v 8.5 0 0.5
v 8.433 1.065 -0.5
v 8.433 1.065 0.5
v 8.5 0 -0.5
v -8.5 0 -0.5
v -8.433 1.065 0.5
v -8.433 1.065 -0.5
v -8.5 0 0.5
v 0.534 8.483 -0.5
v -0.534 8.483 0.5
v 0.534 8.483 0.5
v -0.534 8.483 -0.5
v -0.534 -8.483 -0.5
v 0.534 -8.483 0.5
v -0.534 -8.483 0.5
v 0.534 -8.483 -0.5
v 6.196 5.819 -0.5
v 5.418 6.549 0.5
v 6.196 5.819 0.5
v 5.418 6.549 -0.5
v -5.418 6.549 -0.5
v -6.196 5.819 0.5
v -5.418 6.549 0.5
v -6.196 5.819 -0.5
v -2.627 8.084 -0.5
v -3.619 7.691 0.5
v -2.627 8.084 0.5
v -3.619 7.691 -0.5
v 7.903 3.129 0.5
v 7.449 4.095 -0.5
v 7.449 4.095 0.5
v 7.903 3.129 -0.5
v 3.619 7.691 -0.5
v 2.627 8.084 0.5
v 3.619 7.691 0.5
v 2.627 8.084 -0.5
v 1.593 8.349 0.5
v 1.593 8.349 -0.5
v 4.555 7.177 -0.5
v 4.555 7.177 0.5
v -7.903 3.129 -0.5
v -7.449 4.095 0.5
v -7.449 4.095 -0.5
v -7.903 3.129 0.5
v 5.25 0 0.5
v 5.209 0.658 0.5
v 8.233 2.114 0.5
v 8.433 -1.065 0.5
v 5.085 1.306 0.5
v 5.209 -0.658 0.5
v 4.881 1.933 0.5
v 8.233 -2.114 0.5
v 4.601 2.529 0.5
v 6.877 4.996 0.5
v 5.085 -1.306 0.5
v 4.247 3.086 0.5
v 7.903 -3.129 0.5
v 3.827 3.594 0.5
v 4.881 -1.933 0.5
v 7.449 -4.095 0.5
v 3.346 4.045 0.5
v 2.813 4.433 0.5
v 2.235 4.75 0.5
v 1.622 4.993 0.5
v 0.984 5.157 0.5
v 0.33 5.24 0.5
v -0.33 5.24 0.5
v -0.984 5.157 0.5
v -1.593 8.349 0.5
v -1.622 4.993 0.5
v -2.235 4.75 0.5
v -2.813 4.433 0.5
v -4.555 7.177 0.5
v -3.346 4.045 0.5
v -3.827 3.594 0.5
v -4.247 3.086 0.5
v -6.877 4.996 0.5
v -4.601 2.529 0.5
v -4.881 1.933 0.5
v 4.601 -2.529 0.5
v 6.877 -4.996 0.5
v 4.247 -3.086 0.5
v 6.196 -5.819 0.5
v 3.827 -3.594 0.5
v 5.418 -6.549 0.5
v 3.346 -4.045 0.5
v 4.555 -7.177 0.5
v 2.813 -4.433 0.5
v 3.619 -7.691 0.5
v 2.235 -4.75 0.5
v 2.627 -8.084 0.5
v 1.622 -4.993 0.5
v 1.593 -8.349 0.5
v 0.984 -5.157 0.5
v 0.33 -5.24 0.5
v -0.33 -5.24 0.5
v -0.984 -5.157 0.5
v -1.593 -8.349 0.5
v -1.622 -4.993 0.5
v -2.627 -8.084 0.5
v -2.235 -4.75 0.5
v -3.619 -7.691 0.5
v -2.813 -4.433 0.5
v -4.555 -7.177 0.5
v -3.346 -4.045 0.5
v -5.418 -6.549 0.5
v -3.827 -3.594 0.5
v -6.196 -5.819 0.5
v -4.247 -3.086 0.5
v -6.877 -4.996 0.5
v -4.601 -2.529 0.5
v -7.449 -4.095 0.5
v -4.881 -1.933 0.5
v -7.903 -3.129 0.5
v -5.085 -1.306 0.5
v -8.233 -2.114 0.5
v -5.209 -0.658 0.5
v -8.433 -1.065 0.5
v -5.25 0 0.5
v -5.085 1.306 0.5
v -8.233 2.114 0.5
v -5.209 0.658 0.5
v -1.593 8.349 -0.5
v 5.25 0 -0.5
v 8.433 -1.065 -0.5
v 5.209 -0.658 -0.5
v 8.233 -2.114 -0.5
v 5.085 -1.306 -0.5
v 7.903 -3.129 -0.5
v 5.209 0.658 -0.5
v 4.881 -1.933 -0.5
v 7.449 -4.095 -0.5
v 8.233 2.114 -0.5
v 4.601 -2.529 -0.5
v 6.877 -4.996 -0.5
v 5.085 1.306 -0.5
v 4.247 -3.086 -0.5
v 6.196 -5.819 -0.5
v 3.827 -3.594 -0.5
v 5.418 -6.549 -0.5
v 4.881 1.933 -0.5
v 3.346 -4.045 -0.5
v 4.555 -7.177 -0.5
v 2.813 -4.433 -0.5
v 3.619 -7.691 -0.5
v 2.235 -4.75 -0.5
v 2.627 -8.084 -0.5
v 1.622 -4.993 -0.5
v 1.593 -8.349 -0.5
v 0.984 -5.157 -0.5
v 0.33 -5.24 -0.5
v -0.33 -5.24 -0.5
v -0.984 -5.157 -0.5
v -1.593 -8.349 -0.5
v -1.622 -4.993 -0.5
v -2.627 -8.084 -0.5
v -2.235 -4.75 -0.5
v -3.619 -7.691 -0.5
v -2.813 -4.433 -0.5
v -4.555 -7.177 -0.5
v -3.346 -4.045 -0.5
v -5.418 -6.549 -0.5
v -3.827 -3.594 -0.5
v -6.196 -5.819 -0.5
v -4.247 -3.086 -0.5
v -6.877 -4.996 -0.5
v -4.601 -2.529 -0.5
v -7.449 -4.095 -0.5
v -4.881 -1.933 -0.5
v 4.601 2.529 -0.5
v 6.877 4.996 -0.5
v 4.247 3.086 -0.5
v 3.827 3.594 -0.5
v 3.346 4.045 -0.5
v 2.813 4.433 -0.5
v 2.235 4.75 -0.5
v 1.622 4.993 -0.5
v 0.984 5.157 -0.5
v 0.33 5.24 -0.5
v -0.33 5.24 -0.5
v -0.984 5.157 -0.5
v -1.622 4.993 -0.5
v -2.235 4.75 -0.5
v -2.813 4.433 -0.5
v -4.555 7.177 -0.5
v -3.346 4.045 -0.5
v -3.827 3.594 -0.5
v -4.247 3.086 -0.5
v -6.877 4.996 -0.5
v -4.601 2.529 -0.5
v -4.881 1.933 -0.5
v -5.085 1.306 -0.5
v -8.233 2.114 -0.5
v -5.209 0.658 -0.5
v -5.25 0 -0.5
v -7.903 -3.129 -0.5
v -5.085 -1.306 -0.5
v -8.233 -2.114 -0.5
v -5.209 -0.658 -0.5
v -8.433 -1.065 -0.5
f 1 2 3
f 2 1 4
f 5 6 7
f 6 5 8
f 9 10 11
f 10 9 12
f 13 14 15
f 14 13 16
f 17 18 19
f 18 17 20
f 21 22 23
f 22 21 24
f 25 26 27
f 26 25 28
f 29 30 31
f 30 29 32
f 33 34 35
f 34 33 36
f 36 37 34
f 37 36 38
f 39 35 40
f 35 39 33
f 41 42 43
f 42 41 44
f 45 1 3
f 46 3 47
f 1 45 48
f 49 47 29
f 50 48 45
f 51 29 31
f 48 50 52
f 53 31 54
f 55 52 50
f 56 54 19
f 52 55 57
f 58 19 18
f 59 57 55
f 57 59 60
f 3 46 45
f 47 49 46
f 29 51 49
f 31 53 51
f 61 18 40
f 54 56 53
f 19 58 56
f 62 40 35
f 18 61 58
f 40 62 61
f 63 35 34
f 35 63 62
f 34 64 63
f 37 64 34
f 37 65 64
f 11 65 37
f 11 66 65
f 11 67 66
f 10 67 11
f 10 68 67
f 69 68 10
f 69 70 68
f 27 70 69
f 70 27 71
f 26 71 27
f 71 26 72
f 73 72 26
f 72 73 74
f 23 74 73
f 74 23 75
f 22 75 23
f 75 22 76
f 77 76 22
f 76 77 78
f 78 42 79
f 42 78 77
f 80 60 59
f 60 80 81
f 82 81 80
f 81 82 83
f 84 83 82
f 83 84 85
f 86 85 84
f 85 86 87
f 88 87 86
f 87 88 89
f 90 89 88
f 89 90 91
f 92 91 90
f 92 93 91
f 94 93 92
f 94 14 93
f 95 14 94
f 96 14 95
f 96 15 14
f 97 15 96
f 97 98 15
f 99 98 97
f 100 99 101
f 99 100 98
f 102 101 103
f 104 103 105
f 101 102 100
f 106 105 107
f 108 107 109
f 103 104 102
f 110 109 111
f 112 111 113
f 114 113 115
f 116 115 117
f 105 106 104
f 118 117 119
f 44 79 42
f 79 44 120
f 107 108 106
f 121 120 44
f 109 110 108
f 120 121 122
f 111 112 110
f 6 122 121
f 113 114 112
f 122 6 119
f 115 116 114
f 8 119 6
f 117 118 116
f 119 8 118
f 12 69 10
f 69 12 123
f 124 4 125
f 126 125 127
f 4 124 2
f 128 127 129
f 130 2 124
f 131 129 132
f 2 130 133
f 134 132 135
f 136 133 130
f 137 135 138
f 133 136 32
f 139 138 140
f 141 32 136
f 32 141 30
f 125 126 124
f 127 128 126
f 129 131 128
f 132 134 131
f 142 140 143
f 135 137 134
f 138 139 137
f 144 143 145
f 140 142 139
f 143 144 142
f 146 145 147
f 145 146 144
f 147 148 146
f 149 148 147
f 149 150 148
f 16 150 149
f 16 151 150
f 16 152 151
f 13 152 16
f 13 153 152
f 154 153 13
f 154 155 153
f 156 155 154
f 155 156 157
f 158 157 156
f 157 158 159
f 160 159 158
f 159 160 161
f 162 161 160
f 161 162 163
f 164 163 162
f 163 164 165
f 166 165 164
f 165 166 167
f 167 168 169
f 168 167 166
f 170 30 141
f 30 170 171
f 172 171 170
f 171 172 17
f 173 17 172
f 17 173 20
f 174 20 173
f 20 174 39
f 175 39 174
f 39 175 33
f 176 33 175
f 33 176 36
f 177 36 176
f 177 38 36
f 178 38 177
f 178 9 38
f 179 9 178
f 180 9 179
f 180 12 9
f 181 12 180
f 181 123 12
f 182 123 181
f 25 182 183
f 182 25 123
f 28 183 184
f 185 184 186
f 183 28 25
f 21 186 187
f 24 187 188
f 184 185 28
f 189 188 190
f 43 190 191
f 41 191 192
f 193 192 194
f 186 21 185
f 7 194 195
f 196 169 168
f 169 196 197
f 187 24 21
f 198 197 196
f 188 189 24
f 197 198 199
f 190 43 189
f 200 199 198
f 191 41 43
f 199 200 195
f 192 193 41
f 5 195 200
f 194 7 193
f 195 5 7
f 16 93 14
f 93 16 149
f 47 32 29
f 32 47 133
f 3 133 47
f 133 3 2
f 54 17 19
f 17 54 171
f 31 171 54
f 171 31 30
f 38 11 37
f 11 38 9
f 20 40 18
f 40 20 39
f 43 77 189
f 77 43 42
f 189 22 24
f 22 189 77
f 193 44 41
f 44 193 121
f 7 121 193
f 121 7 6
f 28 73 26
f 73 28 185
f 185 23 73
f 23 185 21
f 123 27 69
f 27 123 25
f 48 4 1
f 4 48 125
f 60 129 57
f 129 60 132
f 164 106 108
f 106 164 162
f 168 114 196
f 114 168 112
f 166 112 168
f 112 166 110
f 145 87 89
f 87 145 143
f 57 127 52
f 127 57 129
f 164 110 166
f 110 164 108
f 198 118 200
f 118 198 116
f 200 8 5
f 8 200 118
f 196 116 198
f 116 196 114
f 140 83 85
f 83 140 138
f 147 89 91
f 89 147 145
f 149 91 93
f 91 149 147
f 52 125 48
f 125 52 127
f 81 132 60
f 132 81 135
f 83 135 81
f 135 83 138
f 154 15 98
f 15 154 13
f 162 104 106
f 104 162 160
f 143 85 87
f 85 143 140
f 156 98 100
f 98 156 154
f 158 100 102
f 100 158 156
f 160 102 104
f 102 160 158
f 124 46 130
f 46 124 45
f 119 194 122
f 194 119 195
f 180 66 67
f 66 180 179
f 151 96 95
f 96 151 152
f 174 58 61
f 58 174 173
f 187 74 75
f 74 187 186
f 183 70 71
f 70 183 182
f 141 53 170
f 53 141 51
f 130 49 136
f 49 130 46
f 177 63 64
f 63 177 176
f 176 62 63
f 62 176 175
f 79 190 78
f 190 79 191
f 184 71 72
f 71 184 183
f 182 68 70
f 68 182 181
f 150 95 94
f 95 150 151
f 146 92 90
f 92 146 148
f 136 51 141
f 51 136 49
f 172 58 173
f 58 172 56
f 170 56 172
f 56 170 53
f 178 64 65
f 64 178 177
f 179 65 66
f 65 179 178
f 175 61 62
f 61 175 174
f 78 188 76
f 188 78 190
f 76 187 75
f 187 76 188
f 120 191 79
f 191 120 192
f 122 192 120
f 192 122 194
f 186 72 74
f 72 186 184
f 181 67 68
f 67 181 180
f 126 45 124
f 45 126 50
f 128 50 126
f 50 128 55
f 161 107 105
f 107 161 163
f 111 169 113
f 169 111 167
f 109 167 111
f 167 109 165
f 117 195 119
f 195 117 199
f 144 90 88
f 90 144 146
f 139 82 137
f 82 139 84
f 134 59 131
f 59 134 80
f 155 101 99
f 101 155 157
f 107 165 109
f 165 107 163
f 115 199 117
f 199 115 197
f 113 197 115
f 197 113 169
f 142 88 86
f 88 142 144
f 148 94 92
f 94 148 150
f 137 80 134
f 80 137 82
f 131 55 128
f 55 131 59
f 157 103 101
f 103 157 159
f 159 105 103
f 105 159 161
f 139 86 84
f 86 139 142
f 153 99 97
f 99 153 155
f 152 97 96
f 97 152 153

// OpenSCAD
$fn = 50;


difference() {
	union() {
		translate(v = [0, 0, -0.5000000000]) {
			cylinder(h = 1, r = 8.5000000000);
		}
	}
	union() {
		translate(v = [0, 0, -100.0000000000]) {
			cylinder(h = 200, r = 5.2500000000);
		}
	}
}
